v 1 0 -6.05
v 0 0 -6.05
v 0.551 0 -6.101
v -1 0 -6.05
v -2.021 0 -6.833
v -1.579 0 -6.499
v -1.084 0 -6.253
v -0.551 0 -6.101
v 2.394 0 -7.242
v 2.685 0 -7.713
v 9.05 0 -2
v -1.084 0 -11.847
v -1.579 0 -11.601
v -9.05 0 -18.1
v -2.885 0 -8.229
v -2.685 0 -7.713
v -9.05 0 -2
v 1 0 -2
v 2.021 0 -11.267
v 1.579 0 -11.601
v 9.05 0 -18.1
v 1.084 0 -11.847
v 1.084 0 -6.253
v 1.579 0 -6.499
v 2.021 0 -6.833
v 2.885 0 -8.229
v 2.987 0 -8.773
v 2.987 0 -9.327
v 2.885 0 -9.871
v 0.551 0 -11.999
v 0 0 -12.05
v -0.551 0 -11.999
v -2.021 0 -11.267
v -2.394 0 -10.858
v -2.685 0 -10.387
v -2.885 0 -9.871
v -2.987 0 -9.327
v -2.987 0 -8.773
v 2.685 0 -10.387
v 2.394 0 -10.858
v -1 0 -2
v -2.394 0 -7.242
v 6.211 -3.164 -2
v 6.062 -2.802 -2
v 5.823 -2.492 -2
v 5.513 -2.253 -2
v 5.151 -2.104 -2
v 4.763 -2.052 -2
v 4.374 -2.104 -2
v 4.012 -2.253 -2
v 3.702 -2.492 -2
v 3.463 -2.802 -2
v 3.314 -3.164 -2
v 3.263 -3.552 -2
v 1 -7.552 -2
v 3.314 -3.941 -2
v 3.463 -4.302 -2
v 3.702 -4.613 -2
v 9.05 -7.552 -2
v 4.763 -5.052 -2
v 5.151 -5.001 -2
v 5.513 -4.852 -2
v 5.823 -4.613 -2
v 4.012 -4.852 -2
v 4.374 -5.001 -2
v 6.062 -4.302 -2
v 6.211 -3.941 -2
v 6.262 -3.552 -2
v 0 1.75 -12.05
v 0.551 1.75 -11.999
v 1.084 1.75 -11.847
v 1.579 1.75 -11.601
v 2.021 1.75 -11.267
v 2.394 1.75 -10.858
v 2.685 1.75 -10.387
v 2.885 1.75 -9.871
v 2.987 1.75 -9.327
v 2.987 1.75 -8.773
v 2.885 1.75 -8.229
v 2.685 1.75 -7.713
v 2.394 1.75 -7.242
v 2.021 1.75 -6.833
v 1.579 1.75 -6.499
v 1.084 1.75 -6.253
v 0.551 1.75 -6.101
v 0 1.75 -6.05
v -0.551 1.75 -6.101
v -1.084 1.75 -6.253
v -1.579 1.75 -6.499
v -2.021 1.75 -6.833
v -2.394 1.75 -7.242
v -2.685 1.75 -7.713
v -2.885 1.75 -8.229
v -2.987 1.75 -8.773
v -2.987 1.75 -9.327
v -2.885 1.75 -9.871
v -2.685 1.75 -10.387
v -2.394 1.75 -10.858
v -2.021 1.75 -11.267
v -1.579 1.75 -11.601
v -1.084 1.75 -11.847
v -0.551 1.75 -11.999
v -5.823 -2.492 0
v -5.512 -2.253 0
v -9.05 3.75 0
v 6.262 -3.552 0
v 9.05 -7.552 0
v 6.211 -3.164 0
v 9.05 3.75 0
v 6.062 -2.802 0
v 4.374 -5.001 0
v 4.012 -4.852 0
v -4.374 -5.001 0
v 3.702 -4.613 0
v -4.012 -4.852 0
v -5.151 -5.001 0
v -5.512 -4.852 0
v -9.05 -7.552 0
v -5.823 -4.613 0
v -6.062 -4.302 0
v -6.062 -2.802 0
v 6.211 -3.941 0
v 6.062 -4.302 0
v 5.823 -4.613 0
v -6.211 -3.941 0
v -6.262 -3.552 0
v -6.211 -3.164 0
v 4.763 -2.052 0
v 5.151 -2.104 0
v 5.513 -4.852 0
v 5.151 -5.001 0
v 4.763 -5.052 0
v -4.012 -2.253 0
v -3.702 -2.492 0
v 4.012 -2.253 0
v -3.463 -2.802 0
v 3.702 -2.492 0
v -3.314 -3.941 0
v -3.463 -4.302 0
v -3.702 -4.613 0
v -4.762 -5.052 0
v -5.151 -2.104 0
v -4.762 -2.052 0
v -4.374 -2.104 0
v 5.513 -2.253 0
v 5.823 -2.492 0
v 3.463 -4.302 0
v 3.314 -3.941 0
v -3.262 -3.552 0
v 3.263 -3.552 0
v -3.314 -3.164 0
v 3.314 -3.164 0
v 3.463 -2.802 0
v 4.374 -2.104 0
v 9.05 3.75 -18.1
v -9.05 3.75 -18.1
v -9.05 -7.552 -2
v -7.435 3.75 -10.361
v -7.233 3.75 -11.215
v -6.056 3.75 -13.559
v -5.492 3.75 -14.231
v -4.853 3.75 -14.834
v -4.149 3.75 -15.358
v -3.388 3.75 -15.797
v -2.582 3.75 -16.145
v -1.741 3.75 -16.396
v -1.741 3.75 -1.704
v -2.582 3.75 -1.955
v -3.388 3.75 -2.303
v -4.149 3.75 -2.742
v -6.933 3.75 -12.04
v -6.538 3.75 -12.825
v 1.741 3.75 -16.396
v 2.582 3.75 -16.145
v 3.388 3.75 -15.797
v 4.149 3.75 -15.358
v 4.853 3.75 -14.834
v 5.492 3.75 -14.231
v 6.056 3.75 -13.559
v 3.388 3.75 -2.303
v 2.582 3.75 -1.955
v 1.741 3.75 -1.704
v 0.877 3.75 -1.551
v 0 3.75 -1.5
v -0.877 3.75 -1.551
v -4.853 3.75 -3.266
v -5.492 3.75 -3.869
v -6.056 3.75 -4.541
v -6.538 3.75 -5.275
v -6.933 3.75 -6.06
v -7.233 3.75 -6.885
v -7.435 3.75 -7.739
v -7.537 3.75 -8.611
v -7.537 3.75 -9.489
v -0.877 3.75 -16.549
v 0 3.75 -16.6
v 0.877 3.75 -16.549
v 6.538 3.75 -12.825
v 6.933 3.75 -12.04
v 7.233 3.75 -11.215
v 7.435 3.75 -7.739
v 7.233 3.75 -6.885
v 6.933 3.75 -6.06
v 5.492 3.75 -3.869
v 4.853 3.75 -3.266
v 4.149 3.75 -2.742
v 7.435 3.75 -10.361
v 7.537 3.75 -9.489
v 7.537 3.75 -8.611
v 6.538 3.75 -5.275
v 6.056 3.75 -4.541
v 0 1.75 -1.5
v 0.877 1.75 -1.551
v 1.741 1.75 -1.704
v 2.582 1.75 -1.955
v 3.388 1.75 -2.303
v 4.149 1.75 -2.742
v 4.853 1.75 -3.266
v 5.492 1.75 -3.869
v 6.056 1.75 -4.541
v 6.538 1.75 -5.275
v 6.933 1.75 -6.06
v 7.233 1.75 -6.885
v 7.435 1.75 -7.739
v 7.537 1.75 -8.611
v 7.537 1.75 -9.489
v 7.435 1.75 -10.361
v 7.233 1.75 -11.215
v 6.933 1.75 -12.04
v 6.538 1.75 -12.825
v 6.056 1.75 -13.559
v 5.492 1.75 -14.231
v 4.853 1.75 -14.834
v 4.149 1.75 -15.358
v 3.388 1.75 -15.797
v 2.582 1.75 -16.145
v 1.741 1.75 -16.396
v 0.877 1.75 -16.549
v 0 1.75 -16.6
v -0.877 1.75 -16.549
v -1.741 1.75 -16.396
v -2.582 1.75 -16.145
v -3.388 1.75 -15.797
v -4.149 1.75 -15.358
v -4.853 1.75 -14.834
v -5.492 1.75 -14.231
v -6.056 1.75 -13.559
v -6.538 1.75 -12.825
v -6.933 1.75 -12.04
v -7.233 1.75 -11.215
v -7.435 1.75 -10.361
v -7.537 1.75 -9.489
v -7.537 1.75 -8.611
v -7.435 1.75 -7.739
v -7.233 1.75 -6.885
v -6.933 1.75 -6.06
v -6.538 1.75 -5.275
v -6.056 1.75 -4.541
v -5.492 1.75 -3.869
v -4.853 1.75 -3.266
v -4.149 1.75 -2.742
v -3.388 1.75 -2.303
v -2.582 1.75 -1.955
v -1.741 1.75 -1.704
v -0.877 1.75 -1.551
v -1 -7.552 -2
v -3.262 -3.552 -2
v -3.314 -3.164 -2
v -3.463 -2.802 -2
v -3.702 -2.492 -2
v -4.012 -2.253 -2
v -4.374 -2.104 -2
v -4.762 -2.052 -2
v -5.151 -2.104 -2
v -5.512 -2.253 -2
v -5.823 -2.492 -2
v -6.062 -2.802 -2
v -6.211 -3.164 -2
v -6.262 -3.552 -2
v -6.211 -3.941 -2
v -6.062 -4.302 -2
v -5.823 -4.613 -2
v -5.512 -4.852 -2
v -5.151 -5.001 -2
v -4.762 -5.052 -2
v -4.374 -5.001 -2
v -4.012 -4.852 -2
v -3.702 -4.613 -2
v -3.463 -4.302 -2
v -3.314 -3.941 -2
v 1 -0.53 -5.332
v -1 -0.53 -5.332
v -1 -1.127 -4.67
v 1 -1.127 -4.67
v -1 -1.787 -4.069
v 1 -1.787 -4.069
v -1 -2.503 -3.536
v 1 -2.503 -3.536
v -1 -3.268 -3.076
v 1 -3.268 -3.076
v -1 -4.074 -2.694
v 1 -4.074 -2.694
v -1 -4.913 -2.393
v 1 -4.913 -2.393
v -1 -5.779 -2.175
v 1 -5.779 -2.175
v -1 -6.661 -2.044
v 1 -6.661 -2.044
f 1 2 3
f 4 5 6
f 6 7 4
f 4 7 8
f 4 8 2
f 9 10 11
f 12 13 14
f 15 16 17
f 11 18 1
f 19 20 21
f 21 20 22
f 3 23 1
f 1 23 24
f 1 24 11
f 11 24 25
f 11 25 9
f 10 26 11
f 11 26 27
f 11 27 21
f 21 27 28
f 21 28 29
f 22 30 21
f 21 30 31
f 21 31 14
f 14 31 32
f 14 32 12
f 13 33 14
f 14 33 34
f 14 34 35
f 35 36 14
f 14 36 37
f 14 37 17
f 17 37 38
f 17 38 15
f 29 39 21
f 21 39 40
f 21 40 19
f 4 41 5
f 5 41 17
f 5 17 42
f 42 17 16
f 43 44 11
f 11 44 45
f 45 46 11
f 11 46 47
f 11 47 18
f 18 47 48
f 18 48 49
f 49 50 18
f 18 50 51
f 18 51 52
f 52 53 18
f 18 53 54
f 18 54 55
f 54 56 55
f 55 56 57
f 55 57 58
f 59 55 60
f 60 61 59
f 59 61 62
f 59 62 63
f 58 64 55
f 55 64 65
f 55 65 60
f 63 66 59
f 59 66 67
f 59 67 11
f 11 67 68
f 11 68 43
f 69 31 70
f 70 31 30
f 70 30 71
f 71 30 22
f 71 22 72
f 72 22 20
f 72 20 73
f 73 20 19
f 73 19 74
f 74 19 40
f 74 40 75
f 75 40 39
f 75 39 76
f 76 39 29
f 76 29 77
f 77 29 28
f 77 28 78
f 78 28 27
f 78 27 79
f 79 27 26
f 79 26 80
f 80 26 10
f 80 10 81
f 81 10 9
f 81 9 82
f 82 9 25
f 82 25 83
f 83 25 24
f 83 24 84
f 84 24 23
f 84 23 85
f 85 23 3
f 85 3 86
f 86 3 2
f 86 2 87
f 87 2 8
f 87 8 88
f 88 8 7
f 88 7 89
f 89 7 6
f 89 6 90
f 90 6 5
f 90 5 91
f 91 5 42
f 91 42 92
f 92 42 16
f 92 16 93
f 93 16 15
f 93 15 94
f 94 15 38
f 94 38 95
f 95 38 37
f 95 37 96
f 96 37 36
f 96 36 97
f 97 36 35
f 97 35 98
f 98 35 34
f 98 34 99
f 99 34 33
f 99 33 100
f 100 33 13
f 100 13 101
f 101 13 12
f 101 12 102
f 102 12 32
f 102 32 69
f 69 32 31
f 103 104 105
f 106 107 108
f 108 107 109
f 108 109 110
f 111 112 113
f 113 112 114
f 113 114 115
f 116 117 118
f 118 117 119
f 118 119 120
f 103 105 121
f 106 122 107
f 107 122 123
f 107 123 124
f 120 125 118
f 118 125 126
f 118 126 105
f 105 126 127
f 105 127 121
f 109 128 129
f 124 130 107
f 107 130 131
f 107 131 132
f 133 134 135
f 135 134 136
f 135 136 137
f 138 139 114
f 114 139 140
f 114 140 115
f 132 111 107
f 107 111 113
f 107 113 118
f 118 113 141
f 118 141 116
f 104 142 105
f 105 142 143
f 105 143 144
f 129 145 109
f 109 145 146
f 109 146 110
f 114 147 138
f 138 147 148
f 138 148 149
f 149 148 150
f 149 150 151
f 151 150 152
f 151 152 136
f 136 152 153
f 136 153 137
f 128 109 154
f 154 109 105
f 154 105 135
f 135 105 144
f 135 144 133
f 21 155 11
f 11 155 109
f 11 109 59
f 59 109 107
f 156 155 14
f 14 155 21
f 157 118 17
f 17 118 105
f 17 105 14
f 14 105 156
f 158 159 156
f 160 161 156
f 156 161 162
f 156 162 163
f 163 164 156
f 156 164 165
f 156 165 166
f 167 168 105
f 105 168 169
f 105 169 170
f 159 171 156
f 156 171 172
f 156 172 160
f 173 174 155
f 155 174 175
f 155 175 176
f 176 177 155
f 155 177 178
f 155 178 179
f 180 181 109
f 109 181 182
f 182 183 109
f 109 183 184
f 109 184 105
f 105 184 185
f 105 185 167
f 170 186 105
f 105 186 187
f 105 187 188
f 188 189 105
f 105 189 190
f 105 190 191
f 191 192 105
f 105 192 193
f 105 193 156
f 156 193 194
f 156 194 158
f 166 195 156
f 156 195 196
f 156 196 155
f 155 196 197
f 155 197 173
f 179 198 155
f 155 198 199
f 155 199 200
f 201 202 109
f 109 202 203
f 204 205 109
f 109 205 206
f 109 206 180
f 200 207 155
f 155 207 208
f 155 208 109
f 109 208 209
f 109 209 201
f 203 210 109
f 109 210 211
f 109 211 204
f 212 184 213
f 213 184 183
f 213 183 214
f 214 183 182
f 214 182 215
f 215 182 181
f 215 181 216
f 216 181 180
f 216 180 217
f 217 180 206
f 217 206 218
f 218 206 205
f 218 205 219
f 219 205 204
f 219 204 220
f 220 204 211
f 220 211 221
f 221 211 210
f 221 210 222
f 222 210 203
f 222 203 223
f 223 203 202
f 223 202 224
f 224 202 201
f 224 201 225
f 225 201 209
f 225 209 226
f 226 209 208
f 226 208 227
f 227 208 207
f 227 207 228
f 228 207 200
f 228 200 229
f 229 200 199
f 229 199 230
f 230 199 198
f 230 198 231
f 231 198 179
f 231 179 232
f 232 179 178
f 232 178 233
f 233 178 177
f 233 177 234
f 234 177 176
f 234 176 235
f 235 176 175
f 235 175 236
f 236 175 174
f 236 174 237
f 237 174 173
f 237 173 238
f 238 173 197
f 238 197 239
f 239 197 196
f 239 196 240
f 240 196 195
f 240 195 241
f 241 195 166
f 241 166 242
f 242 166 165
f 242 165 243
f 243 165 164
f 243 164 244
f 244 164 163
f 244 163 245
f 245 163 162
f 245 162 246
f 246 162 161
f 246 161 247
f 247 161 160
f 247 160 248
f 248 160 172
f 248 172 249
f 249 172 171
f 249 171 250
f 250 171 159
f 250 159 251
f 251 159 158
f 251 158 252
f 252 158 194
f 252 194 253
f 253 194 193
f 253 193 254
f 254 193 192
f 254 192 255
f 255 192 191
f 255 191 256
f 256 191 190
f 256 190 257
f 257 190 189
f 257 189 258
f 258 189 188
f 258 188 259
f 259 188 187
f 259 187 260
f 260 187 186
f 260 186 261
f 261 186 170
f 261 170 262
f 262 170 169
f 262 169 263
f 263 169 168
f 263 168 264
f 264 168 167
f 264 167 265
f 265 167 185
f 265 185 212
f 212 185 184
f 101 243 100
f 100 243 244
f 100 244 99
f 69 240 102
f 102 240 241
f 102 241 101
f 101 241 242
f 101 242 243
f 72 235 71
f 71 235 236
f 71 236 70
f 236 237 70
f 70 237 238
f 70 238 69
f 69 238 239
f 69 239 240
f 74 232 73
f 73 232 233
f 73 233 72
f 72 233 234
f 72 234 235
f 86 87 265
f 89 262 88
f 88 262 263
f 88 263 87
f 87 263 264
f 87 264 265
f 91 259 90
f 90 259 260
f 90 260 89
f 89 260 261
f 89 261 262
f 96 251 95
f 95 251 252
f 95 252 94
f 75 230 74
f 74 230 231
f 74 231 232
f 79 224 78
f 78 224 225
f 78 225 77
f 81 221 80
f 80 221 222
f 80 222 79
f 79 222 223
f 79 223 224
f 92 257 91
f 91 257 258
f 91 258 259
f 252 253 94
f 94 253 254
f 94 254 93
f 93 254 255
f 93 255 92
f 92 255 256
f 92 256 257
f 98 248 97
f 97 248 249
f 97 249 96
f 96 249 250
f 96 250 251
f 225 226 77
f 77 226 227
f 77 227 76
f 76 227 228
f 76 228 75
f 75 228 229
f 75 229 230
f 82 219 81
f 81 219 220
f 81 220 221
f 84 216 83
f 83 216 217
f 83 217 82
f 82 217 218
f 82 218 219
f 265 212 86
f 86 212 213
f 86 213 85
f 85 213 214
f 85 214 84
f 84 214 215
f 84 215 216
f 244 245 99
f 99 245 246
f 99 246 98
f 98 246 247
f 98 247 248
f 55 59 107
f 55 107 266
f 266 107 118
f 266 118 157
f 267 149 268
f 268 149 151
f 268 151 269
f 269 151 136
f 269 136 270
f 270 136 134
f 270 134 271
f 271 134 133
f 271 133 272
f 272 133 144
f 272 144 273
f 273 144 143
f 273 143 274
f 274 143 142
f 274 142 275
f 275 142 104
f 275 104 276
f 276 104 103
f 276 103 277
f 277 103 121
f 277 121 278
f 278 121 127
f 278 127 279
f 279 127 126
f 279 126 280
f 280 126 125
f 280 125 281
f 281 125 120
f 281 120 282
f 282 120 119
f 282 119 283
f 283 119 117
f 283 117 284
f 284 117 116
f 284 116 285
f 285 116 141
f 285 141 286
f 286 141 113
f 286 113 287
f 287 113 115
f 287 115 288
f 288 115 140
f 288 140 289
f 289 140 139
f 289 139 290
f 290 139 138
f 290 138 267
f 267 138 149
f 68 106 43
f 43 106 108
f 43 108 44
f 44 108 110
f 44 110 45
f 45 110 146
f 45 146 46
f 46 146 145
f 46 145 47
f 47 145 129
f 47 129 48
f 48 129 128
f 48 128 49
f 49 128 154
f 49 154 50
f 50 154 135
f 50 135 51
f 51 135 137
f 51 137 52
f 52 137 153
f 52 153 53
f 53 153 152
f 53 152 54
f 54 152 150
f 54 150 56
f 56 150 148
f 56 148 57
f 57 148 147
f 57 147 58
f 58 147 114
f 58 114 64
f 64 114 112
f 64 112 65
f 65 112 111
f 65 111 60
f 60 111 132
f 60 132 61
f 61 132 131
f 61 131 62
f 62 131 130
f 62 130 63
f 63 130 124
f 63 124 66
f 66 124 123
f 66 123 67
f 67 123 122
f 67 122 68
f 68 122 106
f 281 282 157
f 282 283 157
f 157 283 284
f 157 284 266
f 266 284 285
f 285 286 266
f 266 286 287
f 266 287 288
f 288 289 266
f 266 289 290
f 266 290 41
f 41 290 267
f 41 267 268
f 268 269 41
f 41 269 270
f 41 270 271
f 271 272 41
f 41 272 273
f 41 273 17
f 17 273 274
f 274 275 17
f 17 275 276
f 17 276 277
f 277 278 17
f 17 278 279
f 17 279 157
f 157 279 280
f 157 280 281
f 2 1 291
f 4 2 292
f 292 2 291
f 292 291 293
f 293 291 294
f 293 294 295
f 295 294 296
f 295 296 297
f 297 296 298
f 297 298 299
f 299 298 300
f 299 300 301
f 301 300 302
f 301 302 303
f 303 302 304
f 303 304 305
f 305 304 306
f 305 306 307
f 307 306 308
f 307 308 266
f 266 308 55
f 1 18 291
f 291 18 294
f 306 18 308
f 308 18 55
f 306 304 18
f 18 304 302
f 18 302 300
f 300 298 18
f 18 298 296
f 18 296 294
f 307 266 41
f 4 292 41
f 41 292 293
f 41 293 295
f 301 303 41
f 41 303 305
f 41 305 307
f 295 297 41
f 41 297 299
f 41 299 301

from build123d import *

# Parameters (mm, degrees)
SKETCH2_W           = 18.1
SKETCH2_H           = 18.1
SKETCH2_R           = 3
BOSS_EXTRUDE1_DEPTH = 3.75
CUT_EXTRUDE1_START  = 3.75
SKETCH2_3_R         = 7.55
CUT_EXTRUDE1_DEPTH  = 2
SKETCH3_W           = 18.1
SKETCH3_H           = 7.5525
SKETCH3_R           = 1.5
BOSS_EXTRUDE2_DEPTH = 2
BOSS_EXTRUDE3_DEPTH = 1


with BuildPart() as part:
    # Sketch2 → Boss-Extrude1 (new body)
    with BuildSketch(Plane(origin=(0, 0, 0), x_dir=(1, 0, 0), z_dir=(0, 1, 0))):
        with Locations((0, 9.05)):
            Rectangle(SKETCH2_W, SKETCH2_H)
        with Locations(Location((0, 9.05, 0), (0, 0, 270))):
            Circle(SKETCH2_R, mode=Mode.SUBTRACT)
    extrude(amount=BOSS_EXTRUDE1_DEPTH)

    # Sketch2<3> → Cut-Extrude1 (cut)
    with BuildSketch(Plane(origin=(0, 0, 0), x_dir=(1, 0, 0), z_dir=(0, 1, 0)).offset(CUT_EXTRUDE1_START)):
        with Locations(Location((0, 9.05, 0), (0, 0, 270))):
            Circle(SKETCH2_3_R)
    extrude(amount=-CUT_EXTRUDE1_DEPTH, mode=Mode.SUBTRACT)

    # Sketch3 → Boss-Extrude2 (add)
    with BuildSketch(Plane.XY):
        with Locations((0, -3.77625)):
            Rectangle(SKETCH3_W, SKETCH3_H)
        with Locations((4.7625, -3.5525)):
            Circle(SKETCH3_R, mode=Mode.SUBTRACT)
        with Locations((-4.7625, -3.5525)):
            Circle(SKETCH3_R, mode=Mode.SUBTRACT)
    extrude(amount=-BOSS_EXTRUDE2_DEPTH)

    # Sketch5 → Boss-Extrude3 (add, symmetric)
    with BuildSketch(Plane(origin=(0, 0, 0), x_dir=(0, 0, -1), z_dir=(1, 0, 0))):
        with BuildLine():
            Line((2, 0), (2, -7.5525))
            ThreePointArc((2, -7.5525), (3.076392083, -3.267562537), (6.05, 0))
            Line((6.05, 0), (2, 0))
        make_face()
    extrude(amount=BOSS_EXTRUDE3_DEPTH, both=True)


solid = part.part
